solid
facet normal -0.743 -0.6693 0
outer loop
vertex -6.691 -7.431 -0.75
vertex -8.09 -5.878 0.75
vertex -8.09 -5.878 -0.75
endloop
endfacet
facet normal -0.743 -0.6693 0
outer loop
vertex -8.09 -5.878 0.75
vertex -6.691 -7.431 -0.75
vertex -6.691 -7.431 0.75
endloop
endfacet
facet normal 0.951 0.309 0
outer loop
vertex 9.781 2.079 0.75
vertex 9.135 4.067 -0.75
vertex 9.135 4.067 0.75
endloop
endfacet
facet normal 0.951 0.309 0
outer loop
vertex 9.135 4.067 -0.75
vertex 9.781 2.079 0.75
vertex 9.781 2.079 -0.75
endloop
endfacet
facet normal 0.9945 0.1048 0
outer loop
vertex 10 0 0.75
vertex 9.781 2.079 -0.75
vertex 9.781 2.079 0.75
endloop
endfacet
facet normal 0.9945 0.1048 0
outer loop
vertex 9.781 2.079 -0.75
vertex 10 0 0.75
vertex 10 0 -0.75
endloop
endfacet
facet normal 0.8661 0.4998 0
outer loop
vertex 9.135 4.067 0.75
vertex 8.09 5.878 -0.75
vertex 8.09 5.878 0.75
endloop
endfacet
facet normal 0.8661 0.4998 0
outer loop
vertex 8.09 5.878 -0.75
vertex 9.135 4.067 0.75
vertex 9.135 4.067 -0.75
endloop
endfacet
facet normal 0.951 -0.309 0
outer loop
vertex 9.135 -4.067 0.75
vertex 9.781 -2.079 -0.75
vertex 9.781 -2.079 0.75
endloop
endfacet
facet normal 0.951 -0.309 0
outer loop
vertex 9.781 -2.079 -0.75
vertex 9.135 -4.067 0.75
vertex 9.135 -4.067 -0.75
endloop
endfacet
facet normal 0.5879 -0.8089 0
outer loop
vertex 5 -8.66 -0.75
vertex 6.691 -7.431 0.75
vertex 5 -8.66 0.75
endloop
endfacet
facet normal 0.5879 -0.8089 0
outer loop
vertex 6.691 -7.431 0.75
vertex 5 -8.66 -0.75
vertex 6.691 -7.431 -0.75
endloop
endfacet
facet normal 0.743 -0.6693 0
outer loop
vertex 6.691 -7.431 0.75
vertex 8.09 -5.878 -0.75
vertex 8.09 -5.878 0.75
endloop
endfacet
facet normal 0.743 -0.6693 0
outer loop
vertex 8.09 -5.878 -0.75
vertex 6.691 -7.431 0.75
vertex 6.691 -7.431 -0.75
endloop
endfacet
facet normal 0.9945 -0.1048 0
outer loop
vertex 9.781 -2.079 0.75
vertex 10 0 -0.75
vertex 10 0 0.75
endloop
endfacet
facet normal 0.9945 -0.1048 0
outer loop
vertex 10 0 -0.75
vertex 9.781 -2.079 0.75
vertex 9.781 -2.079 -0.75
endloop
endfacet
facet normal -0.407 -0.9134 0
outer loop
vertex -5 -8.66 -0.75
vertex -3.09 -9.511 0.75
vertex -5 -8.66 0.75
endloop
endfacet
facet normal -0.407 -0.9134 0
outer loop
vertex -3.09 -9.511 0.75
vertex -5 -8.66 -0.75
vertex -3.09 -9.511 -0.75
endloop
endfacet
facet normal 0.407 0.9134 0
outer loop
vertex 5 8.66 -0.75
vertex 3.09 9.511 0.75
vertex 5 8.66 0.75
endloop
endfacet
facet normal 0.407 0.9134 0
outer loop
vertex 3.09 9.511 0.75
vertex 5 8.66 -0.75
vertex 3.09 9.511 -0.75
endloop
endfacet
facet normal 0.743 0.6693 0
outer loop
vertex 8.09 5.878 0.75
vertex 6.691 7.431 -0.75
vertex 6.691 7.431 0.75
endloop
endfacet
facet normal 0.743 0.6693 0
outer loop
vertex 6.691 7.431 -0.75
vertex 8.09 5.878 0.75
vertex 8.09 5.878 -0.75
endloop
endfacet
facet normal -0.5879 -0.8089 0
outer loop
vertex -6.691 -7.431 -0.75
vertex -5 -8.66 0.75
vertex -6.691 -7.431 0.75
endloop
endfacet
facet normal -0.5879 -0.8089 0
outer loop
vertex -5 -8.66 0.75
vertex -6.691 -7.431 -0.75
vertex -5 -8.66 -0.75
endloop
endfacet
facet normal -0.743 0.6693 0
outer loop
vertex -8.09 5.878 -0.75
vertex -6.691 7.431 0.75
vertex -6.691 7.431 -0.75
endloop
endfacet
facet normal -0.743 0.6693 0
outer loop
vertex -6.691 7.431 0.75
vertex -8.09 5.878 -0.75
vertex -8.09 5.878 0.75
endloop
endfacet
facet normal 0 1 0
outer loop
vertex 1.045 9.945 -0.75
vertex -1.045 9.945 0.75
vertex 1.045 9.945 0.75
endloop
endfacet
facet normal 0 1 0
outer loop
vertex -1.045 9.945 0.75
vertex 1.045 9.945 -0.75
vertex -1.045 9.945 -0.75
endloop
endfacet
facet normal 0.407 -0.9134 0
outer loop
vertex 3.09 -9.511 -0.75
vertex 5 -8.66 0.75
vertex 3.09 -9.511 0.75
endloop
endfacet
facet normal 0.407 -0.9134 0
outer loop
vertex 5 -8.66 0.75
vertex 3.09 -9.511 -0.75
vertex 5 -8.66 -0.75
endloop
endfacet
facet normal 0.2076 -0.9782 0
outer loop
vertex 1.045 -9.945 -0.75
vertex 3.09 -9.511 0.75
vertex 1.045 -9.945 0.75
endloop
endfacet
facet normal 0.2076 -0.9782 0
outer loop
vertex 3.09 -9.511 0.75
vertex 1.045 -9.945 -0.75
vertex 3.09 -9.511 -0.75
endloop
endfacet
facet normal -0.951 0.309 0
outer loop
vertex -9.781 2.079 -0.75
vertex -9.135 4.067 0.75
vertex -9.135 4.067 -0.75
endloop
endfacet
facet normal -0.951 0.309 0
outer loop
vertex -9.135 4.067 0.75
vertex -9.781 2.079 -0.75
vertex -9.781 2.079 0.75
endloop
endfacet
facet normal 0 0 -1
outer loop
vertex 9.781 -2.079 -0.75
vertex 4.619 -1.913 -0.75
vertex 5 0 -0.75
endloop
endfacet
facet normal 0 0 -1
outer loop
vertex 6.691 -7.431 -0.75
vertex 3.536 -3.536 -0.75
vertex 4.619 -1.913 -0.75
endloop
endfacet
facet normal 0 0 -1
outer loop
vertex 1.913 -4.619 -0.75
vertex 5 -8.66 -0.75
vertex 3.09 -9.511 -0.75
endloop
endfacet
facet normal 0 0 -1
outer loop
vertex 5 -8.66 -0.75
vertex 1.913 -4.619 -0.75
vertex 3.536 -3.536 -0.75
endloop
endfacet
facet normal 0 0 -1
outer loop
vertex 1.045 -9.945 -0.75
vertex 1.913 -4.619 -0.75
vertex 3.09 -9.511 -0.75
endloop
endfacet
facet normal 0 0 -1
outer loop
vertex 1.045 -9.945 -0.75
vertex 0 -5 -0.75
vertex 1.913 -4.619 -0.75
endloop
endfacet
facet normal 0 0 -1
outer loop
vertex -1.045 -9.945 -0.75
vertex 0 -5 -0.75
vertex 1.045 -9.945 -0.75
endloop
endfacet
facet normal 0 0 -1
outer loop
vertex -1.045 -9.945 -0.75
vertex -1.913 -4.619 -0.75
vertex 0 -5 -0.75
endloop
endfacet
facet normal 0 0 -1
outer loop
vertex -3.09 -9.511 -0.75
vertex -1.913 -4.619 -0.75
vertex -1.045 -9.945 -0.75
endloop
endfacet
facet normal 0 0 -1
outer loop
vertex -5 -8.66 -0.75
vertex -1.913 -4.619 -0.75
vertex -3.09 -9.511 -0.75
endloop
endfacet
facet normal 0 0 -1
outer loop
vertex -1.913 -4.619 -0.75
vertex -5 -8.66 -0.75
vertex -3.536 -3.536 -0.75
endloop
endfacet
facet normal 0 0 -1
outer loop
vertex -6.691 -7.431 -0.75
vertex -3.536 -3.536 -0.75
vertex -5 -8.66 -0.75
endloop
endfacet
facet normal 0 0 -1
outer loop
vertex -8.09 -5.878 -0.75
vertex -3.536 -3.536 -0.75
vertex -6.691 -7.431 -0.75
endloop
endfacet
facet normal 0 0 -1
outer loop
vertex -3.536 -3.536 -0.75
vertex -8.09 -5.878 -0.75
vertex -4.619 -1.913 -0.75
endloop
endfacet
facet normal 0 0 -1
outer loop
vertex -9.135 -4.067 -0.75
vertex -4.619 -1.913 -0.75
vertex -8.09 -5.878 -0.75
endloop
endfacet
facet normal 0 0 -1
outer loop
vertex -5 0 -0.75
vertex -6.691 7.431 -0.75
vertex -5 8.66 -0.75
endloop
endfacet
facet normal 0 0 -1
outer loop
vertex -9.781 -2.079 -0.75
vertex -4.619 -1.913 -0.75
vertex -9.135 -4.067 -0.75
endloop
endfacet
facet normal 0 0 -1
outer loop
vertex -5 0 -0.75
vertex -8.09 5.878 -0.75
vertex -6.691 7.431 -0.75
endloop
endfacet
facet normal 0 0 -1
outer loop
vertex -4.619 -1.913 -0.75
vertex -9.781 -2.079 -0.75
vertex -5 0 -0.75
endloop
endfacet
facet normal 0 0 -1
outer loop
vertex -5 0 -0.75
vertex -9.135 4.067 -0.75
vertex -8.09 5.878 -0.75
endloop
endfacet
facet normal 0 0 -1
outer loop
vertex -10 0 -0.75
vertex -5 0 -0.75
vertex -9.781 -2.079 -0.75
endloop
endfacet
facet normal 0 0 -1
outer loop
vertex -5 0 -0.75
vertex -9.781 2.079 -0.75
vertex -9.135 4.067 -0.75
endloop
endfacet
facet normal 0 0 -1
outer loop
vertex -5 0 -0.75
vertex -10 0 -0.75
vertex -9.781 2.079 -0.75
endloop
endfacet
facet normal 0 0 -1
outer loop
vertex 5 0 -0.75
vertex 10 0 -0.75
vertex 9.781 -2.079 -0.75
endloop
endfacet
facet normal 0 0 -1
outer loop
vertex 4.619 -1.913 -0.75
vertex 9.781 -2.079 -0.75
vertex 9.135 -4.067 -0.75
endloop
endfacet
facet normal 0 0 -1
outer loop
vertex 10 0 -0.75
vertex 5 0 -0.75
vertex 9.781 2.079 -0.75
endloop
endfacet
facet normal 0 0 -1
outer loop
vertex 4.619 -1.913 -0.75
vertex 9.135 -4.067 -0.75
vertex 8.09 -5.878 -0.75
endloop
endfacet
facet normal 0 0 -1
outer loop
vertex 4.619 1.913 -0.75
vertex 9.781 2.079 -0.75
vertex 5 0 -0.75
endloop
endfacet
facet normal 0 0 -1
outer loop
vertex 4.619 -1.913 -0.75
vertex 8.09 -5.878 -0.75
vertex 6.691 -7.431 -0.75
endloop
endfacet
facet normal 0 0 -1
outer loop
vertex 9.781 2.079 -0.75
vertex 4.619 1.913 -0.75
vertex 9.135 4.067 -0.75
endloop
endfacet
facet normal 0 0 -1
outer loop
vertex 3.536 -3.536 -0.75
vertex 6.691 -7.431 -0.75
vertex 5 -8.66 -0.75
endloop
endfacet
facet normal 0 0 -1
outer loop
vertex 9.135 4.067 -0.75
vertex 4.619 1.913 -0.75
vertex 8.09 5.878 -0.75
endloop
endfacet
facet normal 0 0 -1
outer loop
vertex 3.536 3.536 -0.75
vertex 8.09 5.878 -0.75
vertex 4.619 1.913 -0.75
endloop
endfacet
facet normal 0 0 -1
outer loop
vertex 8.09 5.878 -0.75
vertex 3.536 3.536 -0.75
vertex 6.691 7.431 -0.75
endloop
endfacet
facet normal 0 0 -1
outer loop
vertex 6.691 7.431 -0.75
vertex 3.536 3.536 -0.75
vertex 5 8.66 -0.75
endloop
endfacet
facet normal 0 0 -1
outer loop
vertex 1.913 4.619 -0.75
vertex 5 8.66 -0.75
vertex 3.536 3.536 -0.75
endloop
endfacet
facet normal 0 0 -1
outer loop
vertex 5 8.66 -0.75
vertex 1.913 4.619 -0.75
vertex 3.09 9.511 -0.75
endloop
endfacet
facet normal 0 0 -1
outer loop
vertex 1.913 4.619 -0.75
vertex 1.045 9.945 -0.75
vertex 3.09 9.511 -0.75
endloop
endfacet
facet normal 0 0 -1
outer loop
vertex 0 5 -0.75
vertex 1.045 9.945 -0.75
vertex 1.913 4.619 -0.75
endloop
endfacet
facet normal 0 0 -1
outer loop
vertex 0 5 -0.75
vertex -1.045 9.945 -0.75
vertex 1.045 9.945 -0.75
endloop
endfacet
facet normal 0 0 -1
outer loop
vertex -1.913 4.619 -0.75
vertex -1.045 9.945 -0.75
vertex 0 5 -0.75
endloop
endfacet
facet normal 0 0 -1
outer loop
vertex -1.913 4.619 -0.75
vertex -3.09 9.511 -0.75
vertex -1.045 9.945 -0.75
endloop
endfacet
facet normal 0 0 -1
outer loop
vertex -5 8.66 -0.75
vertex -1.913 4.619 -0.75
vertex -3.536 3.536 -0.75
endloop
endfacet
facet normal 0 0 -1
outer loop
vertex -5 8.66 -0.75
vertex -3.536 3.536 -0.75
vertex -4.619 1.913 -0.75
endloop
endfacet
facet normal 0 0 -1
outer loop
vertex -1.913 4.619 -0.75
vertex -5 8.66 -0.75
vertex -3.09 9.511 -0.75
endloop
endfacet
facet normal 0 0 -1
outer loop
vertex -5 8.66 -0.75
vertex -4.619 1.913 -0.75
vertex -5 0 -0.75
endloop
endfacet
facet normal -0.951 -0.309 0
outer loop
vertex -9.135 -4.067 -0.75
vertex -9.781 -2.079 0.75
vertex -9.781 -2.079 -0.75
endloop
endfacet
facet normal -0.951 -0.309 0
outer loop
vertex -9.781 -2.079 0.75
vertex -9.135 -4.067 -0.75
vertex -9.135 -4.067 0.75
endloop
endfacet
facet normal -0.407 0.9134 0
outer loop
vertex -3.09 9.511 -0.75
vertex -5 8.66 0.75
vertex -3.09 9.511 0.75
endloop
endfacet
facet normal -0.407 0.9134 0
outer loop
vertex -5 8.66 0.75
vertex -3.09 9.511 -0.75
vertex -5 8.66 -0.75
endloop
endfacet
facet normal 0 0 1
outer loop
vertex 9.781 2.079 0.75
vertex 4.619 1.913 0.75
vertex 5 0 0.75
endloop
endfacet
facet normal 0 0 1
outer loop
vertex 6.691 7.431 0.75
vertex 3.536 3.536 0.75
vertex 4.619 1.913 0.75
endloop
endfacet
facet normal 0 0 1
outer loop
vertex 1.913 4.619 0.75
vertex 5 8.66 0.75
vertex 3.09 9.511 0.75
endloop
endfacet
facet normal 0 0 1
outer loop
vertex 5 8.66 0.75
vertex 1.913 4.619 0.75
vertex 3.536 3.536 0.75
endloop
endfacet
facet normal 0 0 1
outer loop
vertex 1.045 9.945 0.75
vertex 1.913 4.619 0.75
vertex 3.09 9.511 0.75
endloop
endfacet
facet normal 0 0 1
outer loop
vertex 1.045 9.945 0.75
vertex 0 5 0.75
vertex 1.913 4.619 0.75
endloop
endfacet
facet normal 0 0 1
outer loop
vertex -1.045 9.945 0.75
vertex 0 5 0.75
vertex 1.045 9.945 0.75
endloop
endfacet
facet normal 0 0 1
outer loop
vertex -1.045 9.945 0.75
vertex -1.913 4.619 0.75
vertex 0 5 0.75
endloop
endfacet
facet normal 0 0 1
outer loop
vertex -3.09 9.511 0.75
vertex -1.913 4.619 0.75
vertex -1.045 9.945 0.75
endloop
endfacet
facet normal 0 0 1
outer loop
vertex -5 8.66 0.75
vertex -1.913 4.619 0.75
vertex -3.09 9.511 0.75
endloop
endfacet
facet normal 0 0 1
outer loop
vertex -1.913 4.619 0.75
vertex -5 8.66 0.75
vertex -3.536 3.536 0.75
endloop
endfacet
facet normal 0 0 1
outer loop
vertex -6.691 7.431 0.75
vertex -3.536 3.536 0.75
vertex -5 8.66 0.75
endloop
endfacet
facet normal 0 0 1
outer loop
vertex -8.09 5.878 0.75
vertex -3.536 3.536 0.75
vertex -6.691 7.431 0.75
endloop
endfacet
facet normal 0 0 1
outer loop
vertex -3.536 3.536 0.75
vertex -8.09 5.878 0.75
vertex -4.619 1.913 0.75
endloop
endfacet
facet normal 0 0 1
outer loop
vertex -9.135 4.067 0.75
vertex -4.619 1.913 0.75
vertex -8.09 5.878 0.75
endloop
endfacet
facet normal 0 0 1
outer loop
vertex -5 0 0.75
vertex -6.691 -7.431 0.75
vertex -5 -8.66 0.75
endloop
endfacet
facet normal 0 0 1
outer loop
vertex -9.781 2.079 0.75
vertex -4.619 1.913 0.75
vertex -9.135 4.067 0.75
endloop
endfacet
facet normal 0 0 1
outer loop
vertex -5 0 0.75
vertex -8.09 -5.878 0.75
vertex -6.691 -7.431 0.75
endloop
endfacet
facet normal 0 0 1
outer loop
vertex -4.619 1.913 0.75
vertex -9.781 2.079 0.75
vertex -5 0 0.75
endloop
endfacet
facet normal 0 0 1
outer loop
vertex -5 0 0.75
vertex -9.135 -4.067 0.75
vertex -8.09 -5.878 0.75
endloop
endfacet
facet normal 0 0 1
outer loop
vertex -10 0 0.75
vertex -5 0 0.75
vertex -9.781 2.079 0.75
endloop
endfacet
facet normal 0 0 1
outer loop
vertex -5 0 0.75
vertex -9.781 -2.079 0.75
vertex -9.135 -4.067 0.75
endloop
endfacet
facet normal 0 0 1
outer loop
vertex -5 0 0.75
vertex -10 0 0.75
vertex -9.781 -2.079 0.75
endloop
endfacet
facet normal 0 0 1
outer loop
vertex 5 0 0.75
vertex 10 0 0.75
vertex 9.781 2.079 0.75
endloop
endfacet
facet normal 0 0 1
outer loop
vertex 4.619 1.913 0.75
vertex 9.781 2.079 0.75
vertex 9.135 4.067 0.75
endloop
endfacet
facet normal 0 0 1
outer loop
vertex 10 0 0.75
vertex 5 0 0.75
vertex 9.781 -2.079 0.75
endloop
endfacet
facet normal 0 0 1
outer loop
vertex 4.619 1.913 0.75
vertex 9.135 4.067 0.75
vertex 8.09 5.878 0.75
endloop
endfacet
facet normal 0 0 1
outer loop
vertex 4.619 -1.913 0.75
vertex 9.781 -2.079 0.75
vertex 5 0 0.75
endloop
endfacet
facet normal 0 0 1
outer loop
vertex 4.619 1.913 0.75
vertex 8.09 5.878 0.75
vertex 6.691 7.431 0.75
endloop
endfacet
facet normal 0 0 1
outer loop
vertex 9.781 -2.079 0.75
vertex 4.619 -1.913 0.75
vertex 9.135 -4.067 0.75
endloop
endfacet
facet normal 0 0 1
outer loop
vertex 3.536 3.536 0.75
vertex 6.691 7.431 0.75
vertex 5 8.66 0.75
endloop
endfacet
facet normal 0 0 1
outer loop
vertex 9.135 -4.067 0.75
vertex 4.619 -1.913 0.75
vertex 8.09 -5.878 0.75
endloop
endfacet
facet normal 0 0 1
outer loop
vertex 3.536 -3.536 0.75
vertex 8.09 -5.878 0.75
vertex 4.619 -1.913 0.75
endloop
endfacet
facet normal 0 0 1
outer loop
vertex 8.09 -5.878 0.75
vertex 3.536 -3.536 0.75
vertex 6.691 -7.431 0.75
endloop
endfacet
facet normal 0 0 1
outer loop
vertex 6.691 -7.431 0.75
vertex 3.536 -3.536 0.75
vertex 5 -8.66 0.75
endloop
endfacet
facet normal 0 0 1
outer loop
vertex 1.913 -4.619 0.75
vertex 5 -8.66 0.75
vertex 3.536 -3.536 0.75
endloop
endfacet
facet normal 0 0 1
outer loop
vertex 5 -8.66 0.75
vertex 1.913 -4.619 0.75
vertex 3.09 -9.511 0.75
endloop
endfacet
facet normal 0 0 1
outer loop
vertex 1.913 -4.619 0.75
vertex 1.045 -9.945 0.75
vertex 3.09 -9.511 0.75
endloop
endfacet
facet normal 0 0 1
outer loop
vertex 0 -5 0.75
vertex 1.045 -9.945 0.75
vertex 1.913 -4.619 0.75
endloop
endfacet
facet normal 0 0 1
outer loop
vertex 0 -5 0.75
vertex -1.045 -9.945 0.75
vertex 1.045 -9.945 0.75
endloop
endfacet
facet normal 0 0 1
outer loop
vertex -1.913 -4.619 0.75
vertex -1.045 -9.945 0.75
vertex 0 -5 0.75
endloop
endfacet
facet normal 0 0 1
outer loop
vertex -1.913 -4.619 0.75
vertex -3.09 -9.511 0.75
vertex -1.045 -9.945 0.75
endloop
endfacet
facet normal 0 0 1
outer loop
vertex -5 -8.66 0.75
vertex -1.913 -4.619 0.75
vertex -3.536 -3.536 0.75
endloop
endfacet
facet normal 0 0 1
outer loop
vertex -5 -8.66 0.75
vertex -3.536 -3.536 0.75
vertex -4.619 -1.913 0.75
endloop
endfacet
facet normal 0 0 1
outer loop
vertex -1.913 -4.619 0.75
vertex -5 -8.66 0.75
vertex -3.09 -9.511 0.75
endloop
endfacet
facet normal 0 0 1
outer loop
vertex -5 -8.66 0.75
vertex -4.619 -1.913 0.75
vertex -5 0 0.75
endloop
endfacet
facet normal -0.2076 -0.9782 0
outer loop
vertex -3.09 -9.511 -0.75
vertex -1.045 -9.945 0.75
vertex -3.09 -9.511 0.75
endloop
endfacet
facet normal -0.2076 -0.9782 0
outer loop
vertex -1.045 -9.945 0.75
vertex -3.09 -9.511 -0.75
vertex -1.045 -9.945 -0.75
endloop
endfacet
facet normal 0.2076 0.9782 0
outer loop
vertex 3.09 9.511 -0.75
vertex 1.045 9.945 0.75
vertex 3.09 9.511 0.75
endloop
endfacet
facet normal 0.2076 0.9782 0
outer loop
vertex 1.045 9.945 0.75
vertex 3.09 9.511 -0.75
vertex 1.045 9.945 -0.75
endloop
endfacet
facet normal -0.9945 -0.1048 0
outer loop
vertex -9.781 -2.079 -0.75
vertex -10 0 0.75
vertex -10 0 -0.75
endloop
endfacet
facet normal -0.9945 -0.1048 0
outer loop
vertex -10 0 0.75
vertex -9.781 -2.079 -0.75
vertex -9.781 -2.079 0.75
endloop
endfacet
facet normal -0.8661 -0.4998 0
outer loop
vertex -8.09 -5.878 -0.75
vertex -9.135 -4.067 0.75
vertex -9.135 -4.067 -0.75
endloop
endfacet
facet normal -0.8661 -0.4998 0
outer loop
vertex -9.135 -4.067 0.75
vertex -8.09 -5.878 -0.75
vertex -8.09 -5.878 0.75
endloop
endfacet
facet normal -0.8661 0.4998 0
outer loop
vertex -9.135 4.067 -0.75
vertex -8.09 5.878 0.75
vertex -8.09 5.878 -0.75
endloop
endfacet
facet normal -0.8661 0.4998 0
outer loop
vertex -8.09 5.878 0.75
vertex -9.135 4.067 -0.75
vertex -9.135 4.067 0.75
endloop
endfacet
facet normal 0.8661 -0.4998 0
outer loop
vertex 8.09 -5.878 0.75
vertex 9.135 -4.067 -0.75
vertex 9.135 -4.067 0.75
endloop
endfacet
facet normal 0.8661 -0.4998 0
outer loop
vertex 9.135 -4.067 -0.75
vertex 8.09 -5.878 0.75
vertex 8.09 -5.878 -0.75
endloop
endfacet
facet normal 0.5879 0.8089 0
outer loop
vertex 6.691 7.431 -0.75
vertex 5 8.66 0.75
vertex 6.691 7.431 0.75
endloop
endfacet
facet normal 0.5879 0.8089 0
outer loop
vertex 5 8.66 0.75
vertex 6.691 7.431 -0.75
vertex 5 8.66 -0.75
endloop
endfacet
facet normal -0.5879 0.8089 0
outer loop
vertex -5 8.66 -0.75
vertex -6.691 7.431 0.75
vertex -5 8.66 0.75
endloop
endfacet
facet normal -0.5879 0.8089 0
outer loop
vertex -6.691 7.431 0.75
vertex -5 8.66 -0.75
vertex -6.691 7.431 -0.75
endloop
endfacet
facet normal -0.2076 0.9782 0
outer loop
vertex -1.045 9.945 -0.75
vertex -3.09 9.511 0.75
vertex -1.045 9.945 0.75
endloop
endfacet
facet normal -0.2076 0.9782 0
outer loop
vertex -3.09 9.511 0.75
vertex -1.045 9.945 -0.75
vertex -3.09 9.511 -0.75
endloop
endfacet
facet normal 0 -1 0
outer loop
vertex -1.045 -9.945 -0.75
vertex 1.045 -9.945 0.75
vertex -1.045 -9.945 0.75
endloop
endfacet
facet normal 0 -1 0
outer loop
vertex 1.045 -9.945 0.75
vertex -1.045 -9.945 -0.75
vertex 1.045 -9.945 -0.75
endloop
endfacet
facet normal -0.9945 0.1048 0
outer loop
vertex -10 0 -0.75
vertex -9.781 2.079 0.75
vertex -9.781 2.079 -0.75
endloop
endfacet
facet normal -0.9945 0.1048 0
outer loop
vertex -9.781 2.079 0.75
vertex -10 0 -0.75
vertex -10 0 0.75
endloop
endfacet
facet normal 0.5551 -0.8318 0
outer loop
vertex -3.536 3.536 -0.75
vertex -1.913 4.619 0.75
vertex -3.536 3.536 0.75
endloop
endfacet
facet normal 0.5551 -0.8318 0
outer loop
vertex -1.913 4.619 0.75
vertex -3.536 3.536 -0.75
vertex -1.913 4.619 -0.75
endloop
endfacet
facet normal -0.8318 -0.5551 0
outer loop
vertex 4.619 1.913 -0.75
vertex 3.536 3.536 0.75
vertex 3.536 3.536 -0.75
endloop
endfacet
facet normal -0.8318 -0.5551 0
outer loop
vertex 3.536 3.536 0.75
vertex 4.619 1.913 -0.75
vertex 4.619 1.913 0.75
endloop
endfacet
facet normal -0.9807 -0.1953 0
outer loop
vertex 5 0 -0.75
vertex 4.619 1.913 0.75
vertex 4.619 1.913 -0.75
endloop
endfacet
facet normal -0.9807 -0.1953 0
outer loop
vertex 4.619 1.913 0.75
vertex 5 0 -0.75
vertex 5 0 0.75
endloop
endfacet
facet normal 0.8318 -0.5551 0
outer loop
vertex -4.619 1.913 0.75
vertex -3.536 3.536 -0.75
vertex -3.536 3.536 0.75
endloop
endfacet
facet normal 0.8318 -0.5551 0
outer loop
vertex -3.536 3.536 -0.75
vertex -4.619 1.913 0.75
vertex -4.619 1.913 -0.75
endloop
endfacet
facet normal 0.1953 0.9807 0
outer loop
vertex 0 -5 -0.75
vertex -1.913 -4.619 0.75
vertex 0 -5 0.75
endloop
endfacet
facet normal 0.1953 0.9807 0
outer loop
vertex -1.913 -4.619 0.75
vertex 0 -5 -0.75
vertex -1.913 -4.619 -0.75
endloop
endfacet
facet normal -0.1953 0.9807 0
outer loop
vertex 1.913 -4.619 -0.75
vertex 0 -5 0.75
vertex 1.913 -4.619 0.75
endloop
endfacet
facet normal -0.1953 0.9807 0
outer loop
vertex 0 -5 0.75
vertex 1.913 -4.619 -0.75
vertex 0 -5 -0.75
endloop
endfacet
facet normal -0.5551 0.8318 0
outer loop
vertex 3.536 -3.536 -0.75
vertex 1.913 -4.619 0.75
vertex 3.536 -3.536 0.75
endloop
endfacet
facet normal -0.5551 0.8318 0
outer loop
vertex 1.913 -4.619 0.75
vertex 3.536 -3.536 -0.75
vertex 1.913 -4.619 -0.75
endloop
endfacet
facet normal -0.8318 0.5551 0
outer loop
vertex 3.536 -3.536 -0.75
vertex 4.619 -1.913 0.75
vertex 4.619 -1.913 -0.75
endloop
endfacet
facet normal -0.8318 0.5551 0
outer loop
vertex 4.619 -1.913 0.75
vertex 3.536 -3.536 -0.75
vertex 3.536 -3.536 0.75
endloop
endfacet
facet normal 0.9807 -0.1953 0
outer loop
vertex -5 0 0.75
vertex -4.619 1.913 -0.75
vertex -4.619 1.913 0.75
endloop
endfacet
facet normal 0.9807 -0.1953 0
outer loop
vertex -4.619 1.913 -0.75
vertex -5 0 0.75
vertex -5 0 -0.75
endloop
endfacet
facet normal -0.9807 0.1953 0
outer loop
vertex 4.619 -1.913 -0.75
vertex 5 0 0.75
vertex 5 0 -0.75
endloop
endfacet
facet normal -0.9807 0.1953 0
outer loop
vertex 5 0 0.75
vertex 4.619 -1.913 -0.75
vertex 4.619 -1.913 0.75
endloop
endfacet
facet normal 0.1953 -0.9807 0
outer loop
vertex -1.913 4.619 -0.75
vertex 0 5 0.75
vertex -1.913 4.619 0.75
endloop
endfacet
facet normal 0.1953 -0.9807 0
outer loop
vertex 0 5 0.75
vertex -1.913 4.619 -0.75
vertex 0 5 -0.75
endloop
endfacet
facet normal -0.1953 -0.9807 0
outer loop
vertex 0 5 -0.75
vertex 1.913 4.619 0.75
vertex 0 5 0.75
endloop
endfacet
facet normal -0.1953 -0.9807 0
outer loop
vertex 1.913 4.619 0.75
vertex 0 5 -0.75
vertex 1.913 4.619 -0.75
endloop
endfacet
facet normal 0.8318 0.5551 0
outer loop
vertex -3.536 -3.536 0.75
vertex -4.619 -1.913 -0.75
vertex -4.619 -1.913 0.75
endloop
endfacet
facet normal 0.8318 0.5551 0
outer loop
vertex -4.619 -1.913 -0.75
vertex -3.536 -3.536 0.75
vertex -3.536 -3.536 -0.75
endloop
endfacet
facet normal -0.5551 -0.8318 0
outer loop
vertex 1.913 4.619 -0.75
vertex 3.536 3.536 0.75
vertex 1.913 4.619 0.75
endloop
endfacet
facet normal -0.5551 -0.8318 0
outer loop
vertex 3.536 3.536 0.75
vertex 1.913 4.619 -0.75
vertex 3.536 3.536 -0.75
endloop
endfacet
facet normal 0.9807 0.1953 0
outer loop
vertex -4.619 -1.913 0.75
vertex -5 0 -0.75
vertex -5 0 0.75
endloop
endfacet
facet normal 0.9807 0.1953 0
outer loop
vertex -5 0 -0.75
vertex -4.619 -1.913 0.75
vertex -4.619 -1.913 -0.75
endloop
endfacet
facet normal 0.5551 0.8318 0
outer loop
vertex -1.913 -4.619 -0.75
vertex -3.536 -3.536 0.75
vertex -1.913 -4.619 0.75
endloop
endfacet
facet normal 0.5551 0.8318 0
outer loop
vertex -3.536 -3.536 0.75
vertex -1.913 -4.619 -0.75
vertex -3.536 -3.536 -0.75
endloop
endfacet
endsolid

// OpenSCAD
// Parameters for the spacer ring
module spacer_ring(outer_diameter = 20, inner_diameter = 10, thickness = 1.5) { // Reduced thickness to match the original model
    difference() {
        // Outer cylinder
        cylinder(d = outer_diameter, h = thickness, center = true);
        // Inner hole
        cylinder(d = inner_diameter, h = thickness + 1, center = true);
    }
}

// Render the spacer ring
spacer_ring();
